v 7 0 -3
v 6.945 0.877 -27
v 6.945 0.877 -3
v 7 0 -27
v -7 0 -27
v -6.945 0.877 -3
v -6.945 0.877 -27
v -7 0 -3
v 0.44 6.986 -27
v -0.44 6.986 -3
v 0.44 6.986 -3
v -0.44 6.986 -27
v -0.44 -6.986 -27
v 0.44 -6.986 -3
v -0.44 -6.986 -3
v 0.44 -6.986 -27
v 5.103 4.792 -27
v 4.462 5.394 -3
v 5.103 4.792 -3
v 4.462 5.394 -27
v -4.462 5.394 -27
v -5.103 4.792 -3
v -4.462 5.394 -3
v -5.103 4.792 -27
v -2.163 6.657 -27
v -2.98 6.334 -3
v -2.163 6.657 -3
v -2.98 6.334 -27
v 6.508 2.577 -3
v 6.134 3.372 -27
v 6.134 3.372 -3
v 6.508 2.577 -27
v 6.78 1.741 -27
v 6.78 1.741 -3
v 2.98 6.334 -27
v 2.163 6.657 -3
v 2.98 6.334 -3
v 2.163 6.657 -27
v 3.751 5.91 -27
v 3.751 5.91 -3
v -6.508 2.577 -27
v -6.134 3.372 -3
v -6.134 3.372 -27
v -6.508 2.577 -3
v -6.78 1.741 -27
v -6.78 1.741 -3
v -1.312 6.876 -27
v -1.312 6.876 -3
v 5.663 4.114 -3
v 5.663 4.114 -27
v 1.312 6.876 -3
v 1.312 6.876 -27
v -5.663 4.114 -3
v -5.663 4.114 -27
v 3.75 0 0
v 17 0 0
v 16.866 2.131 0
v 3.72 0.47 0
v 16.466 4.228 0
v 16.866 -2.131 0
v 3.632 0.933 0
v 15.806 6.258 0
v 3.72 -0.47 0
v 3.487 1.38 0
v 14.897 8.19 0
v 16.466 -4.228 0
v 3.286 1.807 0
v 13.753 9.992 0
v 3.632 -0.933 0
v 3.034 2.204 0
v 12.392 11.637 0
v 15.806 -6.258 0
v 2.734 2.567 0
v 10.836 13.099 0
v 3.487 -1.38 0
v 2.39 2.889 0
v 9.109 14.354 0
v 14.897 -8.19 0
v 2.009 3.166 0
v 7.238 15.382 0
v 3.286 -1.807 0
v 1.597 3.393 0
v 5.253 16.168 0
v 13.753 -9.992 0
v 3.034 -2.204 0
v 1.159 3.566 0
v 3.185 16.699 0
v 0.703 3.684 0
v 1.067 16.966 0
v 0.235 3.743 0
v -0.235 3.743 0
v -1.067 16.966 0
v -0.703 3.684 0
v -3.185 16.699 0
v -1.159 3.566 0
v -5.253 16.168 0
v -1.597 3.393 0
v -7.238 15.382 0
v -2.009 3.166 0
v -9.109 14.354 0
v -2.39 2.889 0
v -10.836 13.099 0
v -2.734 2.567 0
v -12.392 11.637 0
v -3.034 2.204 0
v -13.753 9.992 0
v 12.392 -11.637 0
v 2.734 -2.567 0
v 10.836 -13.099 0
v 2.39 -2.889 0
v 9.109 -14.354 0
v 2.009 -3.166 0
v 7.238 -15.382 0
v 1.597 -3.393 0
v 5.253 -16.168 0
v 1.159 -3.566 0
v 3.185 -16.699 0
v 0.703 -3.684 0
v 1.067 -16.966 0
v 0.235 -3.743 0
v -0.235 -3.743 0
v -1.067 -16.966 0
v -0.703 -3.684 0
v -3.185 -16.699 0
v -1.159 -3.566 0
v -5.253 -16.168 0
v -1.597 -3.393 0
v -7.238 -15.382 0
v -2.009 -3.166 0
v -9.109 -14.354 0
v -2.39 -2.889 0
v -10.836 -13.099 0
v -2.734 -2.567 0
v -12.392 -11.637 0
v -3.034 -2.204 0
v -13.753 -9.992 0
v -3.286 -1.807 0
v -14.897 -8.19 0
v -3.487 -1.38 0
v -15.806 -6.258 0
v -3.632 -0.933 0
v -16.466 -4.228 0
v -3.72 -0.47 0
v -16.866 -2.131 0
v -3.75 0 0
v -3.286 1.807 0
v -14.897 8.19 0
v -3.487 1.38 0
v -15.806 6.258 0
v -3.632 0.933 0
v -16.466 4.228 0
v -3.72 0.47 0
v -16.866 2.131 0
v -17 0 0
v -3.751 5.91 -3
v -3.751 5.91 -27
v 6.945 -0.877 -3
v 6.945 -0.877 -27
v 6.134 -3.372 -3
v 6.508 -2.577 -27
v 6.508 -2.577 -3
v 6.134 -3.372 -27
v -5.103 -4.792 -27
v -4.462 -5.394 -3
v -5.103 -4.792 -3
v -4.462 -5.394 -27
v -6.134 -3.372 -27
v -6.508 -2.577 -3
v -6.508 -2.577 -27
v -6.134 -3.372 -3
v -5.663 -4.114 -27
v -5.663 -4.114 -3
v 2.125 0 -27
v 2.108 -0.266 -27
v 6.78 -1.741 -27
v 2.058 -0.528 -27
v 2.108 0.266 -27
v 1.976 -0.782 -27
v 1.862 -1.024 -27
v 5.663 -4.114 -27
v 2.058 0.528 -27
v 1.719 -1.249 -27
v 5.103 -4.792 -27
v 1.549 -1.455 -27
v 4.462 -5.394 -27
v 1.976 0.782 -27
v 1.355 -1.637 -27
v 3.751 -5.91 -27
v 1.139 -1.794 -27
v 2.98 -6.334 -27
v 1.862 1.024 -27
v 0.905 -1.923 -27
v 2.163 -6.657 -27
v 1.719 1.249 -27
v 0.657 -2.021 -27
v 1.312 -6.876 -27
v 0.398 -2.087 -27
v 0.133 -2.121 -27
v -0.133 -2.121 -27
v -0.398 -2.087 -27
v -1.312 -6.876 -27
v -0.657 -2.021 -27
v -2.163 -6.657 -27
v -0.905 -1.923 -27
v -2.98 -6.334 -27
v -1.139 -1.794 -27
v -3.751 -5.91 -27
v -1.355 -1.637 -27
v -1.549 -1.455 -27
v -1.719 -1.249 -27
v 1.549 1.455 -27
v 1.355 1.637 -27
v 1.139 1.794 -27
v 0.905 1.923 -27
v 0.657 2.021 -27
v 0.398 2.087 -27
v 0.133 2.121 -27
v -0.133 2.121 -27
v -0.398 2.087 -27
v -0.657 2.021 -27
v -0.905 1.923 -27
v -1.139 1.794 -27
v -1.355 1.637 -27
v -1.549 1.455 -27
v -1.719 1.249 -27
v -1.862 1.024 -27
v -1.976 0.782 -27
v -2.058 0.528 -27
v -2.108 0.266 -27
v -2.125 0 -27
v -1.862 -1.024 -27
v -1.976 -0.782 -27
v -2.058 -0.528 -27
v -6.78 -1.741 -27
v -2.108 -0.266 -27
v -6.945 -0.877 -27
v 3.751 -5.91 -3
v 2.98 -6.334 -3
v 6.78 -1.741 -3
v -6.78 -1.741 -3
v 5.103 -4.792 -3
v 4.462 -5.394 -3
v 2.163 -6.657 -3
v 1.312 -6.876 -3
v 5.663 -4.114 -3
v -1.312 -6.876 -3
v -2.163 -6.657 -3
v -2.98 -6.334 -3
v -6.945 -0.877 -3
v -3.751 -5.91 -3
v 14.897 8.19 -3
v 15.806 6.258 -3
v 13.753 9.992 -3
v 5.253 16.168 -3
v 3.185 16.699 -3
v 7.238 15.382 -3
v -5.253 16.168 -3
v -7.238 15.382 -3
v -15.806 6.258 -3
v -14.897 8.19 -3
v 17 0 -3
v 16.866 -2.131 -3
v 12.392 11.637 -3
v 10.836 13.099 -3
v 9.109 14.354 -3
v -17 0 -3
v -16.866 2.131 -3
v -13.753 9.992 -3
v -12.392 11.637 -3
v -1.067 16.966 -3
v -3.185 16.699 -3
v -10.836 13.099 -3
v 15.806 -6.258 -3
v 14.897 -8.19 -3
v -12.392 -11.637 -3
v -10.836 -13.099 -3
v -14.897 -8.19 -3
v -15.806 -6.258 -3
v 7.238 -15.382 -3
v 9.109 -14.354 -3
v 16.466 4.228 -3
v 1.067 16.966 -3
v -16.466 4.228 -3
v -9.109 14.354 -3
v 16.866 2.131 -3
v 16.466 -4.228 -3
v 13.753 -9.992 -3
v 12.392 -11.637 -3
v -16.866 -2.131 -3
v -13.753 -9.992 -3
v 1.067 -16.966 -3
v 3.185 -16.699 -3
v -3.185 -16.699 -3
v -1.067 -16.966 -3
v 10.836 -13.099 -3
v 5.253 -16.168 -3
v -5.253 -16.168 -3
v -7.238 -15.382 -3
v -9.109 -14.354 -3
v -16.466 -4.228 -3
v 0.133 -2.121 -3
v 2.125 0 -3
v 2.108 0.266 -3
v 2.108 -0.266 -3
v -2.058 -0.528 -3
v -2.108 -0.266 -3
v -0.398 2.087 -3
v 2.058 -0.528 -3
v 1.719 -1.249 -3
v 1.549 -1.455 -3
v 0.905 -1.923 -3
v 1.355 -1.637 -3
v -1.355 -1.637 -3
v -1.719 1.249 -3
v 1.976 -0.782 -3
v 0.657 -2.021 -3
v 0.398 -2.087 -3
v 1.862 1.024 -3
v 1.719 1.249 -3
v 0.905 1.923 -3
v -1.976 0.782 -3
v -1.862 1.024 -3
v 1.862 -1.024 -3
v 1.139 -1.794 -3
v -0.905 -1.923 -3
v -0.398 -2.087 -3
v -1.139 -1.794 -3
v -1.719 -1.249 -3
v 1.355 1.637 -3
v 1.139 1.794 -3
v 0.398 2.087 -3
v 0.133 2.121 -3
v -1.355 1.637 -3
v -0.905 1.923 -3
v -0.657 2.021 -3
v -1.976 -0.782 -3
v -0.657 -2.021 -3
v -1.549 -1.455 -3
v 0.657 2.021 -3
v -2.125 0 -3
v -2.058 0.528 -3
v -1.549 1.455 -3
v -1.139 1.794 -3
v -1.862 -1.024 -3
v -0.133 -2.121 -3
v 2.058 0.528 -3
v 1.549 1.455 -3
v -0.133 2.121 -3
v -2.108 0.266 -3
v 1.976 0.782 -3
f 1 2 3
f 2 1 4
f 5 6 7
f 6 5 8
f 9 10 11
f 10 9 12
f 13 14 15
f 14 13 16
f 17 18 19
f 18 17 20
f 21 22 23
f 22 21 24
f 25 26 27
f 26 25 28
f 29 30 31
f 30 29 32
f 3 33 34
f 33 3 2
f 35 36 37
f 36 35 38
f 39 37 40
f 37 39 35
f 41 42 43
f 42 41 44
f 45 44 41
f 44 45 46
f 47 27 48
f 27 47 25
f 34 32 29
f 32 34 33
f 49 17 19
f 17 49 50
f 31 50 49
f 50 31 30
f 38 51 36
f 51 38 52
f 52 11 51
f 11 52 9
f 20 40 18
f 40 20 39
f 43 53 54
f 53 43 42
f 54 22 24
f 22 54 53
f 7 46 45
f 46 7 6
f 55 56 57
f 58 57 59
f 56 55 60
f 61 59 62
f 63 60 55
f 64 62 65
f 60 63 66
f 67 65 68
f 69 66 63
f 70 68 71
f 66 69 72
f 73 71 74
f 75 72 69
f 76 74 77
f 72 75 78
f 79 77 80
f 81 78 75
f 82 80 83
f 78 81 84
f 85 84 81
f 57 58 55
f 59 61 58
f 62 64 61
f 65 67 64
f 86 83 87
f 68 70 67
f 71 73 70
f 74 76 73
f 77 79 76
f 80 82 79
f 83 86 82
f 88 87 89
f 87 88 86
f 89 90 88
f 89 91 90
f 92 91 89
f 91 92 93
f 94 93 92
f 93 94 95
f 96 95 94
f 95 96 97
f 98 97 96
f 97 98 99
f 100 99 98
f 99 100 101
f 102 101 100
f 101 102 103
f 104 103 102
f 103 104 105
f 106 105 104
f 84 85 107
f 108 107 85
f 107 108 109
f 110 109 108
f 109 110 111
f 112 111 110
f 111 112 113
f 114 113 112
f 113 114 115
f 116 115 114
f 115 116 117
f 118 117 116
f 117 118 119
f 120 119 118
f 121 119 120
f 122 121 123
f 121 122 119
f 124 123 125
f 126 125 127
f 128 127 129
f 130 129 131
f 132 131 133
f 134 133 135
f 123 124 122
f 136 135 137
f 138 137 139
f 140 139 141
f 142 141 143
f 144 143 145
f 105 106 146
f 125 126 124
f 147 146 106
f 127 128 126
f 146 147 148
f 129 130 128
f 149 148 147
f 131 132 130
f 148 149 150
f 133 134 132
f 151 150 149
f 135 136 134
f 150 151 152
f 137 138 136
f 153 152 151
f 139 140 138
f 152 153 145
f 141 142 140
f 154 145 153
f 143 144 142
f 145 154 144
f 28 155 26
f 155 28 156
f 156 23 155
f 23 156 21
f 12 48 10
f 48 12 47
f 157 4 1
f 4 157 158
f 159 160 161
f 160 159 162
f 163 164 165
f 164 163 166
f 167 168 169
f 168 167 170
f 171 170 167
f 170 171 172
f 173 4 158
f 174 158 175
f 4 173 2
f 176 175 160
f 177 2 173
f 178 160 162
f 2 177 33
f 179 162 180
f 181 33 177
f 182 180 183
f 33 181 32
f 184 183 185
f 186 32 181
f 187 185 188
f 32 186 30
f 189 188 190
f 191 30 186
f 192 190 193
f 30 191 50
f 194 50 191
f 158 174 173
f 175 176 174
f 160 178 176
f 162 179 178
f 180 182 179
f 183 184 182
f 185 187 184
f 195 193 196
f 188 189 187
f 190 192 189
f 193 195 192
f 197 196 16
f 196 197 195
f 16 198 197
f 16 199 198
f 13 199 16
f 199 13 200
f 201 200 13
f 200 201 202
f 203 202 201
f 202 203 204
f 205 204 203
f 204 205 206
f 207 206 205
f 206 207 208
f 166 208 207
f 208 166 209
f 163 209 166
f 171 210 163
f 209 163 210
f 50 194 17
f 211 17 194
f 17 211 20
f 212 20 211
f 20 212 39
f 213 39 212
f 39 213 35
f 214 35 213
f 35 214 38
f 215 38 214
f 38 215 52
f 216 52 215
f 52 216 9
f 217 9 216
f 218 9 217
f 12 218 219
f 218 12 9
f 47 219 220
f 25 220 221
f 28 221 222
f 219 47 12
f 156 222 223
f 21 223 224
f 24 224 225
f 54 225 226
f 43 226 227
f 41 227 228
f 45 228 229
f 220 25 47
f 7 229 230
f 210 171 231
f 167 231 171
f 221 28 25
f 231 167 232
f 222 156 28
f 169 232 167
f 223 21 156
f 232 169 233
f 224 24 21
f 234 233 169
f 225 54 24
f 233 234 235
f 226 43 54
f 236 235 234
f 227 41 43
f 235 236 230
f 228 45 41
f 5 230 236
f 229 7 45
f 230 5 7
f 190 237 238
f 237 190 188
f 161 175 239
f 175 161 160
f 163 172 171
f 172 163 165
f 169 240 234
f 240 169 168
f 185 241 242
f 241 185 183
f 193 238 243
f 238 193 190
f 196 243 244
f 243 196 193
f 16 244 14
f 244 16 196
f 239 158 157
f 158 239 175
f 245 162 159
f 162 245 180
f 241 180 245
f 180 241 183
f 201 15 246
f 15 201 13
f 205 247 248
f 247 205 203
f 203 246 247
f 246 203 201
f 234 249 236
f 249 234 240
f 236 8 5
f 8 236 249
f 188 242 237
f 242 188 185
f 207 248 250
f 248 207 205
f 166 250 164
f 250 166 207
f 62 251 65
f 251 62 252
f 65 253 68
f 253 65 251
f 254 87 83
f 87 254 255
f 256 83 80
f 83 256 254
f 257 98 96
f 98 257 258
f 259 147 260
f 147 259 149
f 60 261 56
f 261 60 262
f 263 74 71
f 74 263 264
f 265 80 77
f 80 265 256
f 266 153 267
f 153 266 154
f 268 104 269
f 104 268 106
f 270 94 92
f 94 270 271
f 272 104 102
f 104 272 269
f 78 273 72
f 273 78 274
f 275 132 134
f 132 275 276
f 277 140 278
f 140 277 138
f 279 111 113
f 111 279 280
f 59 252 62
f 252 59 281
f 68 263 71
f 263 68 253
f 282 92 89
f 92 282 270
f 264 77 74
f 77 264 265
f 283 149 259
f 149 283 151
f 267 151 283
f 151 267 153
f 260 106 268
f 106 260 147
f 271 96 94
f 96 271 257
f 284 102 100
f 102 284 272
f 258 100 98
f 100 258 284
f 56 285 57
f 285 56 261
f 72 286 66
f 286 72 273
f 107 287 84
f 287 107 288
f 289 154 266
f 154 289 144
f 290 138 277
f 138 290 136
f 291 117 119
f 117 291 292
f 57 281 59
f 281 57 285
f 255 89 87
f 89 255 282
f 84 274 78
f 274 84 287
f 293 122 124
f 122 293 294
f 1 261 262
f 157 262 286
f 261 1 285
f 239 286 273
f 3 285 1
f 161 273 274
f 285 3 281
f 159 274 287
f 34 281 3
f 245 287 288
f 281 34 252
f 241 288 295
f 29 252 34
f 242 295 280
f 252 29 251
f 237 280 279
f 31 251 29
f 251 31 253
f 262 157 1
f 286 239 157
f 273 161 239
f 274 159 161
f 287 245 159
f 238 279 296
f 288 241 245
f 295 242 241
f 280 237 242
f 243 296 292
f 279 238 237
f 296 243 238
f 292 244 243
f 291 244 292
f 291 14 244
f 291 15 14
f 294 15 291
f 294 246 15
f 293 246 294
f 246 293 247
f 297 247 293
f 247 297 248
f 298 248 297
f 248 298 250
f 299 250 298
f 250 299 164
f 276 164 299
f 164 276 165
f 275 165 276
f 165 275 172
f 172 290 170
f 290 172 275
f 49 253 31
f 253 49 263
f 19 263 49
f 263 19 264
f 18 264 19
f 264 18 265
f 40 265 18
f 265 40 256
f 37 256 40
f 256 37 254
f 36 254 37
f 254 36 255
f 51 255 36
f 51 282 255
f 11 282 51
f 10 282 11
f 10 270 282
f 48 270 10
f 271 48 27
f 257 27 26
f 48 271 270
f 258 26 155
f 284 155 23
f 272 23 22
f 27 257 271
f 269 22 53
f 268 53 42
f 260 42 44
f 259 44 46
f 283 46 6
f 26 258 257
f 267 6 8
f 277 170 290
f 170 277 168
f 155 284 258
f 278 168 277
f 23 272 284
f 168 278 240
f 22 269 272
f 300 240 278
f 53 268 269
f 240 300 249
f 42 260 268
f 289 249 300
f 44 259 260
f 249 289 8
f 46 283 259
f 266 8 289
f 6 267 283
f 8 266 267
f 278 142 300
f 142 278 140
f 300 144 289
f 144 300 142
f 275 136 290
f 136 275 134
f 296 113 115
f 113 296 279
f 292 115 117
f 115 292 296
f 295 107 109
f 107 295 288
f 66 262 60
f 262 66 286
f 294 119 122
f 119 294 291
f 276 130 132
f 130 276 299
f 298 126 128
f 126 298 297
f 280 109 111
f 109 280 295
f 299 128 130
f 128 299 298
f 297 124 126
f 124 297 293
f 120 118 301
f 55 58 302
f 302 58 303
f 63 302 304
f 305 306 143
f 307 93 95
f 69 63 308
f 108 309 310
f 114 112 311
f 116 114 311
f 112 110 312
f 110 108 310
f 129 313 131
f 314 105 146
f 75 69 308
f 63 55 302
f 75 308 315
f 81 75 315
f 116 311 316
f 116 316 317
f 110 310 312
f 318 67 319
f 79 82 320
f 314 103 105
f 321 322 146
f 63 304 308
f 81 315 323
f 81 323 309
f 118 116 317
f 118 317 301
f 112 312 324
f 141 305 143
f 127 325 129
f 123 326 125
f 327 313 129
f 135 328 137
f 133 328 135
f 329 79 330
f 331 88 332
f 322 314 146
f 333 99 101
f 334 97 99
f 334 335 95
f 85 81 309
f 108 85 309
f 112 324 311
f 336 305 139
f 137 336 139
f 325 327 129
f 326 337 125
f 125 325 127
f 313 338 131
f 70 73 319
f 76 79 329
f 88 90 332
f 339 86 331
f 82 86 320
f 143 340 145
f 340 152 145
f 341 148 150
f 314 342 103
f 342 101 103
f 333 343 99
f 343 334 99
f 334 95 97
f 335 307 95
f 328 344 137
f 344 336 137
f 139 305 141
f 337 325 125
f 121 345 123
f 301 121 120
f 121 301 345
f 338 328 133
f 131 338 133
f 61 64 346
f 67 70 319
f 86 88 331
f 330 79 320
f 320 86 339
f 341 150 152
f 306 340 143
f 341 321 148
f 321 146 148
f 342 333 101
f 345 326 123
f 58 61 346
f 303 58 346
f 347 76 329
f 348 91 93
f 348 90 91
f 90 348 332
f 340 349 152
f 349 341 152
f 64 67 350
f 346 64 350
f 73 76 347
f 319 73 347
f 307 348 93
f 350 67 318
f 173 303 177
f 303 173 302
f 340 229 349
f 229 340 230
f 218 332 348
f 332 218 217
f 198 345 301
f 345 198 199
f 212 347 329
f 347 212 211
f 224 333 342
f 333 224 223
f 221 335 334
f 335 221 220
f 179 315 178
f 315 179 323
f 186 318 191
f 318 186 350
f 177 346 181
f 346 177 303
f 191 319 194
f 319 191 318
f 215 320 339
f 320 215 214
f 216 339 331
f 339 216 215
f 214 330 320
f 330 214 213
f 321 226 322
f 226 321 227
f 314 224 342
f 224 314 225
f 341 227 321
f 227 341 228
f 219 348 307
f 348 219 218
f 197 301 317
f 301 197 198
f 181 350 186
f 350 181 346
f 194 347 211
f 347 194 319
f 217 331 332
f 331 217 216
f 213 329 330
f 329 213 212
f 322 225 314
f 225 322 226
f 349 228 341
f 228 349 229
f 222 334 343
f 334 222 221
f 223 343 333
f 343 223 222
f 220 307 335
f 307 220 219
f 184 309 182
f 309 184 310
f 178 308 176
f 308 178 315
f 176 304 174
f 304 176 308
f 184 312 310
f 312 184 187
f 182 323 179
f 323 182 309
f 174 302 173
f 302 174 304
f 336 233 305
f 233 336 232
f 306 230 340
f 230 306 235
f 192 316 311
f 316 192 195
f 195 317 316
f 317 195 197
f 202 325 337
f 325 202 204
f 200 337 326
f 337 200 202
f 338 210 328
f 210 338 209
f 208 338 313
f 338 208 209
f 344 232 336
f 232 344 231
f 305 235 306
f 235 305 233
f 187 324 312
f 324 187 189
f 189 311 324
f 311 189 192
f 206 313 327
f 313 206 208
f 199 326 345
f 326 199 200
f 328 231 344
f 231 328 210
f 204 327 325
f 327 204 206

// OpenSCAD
$fn = 50;


difference() {
	union() {
		translate(v = [0, 0, -27.0000000000]) {
			cylinder(h = 27, r = 7.0000000000);
		}
		translate(v = [0, 0, -3.0000000000]) {
			cylinder(h = 3, r = 17.0000000000);
		}
	}
	union() {
		translate(v = [0, 0, 0]) {
			rotate(a = [0, 0, 0]) {
				difference() {
					union() {
						#translate(v = [0, 0, -27.0000000000]) {
							cylinder(h = 27, r = 2.0000000000);
						}
						#translate(v = [0, 0, -3]) {
							cylinder(h = 3, r = 7.0000000000, r1 = 2.1250000000, r2 = 3.7500000000);
						}
						#translate(v = [0, 0, -27.0000000000]) {
							cylinder(h = 27, r = 2.1250000000);
						}
						#translate(v = [0, 0, -27.0000000000]) {
							cylinder(h = 27, r = 2.0000000000);
						}
					}
					union();
				}
			}
		}
	}
}
